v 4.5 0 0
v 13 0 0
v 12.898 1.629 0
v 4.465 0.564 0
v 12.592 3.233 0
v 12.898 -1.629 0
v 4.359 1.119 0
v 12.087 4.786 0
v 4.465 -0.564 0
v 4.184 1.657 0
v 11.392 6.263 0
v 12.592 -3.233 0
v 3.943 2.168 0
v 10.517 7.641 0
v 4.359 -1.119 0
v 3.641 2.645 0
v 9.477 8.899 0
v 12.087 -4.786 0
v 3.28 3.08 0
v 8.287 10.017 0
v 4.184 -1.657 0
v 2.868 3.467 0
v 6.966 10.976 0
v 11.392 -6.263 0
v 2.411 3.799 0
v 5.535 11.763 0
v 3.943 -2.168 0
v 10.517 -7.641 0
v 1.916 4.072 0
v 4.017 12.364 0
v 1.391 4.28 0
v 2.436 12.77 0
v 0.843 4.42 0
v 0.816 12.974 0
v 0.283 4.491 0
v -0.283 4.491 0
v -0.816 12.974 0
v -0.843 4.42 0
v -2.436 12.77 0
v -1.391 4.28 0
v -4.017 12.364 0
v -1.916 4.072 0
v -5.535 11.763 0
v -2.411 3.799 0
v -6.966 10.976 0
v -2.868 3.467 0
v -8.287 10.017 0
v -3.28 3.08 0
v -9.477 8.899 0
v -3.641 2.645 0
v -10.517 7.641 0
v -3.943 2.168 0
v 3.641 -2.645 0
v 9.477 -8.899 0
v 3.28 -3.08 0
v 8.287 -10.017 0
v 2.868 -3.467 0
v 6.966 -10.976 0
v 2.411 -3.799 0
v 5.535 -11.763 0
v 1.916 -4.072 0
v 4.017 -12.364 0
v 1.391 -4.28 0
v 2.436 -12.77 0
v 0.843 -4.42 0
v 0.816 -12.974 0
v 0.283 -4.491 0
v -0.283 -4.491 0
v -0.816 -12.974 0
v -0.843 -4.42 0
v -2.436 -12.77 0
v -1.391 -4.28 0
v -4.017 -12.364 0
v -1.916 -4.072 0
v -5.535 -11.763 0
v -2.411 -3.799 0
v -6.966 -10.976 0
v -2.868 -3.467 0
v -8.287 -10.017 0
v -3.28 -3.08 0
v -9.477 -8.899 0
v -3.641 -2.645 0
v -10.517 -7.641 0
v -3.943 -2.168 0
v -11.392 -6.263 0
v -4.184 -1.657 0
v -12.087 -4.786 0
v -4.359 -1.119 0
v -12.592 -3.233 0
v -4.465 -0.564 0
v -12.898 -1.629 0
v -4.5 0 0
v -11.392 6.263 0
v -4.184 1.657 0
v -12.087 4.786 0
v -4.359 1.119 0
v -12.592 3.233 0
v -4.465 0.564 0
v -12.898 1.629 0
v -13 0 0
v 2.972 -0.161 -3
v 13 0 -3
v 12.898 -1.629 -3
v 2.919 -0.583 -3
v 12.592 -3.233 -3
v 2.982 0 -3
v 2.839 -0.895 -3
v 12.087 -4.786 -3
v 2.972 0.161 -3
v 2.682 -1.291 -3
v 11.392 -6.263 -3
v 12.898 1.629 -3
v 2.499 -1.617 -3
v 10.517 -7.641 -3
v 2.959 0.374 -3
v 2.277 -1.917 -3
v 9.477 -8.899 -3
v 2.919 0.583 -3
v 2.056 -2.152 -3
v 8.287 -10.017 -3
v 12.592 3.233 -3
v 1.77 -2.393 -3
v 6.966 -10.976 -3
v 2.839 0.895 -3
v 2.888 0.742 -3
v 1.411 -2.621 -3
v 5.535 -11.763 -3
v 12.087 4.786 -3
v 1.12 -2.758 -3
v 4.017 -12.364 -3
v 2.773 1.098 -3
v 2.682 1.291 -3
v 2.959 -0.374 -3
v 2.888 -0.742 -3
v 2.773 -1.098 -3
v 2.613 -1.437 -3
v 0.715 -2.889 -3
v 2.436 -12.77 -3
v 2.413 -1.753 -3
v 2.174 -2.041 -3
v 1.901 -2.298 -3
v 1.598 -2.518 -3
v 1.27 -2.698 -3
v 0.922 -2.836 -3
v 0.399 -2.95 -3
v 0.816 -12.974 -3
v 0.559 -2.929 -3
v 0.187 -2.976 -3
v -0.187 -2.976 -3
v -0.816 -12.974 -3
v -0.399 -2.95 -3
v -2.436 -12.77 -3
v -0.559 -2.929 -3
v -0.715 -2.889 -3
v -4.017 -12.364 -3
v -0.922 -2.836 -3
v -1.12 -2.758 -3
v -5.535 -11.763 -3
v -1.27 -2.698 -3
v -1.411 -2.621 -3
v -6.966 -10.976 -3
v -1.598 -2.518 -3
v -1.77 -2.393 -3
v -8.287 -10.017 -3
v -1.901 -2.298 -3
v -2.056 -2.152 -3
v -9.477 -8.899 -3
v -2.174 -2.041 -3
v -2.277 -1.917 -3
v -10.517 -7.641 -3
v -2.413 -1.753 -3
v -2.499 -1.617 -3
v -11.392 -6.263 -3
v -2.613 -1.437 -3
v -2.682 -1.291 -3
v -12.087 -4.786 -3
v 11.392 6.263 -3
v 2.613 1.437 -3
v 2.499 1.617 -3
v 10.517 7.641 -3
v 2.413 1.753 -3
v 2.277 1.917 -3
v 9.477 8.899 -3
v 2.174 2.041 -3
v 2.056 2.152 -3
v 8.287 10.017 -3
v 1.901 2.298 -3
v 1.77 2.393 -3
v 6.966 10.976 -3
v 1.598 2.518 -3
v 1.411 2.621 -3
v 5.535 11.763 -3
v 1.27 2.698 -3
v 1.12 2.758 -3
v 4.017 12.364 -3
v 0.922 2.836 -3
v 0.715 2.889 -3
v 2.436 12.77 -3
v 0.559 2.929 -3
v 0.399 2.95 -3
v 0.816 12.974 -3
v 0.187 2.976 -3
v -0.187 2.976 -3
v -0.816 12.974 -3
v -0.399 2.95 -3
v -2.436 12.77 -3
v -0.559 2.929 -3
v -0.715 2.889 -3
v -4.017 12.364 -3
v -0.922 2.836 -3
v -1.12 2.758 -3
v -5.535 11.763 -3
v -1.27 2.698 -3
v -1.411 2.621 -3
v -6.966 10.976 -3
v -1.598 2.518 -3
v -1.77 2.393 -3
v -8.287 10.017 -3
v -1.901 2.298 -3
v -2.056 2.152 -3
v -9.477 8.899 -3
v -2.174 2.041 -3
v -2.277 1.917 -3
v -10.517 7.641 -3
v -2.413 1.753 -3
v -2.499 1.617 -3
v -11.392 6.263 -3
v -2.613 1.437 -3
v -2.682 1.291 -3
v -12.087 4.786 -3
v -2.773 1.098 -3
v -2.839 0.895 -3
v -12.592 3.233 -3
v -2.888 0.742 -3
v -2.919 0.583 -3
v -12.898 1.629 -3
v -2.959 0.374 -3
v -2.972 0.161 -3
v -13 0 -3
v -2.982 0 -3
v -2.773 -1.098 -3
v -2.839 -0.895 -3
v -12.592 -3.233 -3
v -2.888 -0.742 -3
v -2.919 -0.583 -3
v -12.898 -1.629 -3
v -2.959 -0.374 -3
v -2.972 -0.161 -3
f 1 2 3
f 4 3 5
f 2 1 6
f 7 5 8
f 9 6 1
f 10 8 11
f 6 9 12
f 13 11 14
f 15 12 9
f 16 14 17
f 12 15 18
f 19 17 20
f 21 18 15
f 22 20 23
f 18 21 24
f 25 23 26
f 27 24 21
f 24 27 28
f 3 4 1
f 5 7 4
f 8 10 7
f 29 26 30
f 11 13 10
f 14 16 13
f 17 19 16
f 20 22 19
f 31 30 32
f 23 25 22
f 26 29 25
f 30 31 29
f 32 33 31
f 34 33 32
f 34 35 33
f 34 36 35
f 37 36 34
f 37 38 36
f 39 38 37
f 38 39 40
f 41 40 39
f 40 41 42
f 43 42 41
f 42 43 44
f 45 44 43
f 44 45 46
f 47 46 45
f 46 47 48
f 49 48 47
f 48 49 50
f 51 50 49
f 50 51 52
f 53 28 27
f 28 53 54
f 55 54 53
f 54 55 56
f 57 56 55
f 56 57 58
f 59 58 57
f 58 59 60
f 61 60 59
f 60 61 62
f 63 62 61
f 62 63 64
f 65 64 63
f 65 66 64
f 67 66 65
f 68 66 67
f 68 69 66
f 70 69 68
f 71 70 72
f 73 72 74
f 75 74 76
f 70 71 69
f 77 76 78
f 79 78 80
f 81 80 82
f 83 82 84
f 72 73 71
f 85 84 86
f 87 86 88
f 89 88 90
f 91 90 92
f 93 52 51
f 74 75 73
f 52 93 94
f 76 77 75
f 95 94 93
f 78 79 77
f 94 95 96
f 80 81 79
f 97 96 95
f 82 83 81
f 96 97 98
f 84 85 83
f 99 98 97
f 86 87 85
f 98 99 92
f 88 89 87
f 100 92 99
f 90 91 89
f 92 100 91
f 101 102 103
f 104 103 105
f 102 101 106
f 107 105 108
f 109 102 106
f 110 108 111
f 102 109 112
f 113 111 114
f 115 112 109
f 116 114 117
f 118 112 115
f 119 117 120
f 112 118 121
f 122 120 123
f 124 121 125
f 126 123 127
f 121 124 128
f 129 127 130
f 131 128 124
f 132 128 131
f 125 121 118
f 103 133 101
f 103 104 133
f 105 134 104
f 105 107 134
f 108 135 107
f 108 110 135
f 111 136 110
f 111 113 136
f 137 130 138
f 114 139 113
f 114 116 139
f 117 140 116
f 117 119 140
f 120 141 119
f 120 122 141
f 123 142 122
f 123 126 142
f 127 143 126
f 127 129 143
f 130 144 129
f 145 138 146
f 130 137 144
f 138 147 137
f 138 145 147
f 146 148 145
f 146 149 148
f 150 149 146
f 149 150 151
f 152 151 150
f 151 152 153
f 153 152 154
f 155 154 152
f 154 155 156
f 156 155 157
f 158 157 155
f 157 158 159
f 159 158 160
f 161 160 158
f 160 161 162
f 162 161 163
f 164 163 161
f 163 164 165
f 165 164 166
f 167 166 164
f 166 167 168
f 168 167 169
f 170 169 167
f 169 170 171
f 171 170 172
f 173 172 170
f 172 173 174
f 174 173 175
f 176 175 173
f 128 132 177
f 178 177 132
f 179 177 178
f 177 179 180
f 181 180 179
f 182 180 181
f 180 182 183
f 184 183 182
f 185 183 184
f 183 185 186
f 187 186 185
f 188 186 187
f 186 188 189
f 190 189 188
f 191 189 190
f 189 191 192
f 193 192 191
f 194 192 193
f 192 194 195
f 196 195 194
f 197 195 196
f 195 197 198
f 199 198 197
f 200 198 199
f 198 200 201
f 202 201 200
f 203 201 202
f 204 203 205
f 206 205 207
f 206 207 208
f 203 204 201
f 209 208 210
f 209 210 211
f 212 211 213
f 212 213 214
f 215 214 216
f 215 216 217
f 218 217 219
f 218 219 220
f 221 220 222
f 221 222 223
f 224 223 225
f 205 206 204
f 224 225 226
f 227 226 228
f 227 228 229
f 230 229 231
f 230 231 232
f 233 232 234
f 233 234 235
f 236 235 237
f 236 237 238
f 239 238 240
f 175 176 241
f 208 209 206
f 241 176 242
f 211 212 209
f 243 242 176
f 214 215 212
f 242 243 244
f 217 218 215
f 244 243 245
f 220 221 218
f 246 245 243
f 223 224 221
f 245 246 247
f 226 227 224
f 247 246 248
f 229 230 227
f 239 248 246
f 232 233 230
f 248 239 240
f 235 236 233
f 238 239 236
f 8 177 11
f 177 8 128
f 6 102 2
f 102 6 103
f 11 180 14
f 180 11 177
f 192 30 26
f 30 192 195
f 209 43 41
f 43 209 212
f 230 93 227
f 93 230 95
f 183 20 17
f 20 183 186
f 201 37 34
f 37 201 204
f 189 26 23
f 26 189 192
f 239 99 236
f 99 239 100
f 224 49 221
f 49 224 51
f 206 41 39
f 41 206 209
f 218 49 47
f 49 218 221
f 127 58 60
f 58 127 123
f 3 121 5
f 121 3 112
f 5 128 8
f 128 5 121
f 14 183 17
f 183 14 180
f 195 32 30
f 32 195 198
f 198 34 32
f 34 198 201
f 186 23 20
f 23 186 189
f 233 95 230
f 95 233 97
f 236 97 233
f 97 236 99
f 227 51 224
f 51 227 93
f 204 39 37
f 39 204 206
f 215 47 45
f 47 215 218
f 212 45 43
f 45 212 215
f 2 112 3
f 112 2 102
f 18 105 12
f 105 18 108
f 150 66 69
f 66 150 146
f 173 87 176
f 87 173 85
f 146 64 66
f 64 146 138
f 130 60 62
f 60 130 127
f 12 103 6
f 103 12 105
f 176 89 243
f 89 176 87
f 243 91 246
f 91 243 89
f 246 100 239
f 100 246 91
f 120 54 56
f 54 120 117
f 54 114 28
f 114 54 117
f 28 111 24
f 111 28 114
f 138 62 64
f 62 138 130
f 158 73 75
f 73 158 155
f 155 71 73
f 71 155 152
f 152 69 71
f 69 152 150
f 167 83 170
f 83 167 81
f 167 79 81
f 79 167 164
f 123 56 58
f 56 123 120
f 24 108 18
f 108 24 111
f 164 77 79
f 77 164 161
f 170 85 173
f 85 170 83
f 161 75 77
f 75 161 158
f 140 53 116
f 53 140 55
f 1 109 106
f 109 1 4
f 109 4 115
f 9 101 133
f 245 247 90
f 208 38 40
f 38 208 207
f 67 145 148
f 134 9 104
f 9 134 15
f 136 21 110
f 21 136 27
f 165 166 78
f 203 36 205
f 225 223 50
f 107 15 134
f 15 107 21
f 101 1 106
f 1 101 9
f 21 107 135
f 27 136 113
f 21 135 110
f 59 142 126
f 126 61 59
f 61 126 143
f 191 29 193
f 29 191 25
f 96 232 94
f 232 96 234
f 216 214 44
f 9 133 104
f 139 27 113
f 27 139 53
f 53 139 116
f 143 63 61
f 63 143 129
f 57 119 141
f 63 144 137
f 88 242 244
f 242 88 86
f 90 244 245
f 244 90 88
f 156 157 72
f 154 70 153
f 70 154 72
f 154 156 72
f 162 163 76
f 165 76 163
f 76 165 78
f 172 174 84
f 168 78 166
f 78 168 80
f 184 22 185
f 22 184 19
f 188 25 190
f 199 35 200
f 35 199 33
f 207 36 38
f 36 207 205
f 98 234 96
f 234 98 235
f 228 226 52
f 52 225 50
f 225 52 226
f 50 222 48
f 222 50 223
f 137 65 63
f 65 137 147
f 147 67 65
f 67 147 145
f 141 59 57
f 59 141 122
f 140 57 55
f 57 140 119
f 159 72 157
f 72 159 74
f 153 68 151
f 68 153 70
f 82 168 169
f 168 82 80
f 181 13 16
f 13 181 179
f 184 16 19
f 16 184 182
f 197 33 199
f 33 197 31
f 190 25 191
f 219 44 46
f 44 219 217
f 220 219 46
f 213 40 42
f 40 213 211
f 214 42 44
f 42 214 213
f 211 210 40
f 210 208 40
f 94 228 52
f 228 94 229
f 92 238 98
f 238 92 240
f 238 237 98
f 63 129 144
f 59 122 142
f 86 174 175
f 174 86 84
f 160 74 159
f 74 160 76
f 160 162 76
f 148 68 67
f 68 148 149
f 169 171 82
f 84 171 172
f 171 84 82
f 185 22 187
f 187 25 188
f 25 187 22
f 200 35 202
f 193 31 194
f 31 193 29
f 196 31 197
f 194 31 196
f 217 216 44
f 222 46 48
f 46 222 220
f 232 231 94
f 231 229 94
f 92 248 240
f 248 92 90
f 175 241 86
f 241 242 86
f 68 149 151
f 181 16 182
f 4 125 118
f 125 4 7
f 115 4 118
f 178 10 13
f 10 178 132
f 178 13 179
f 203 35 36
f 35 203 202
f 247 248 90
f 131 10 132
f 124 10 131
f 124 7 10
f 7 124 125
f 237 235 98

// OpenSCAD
$fn = 50;


difference() {
	union() {
		translate(v = [0, 0, -3.0000000000]) {
			cylinder(h = 3, r = 10.0000000000);
		}
		translate(v = [0, 0, -3.0000000000]) {
			cylinder(h = 3, r = 13.0000000000);
		}
	}
	union() {
		translate(v = [0, 0, 0]) {
			rotate(a = [0, 0, 0]) {
				difference() {
					union() {
						#translate(v = [0, 0, -3.0000000000]) {
							cylinder(h = 3, r = 2.2500000000);
						}
						#translate(v = [0, 0, -4.2000000000]) {
							cylinder(h = 4.2000000000, r = 10.0000000000, r1 = 2.3750000000, r2 = 4.5000000000);
						}
						#translate(v = [0, 0, -3.0000000000]) {
							cylinder(h = 3, r = 2.3750000000);
						}
						#translate(v = [0, 0, -3.0000000000]) {
							cylinder(h = 3, r = 2.2500000000);
						}
					}
					union();
				}
			}
		}
	}
}
